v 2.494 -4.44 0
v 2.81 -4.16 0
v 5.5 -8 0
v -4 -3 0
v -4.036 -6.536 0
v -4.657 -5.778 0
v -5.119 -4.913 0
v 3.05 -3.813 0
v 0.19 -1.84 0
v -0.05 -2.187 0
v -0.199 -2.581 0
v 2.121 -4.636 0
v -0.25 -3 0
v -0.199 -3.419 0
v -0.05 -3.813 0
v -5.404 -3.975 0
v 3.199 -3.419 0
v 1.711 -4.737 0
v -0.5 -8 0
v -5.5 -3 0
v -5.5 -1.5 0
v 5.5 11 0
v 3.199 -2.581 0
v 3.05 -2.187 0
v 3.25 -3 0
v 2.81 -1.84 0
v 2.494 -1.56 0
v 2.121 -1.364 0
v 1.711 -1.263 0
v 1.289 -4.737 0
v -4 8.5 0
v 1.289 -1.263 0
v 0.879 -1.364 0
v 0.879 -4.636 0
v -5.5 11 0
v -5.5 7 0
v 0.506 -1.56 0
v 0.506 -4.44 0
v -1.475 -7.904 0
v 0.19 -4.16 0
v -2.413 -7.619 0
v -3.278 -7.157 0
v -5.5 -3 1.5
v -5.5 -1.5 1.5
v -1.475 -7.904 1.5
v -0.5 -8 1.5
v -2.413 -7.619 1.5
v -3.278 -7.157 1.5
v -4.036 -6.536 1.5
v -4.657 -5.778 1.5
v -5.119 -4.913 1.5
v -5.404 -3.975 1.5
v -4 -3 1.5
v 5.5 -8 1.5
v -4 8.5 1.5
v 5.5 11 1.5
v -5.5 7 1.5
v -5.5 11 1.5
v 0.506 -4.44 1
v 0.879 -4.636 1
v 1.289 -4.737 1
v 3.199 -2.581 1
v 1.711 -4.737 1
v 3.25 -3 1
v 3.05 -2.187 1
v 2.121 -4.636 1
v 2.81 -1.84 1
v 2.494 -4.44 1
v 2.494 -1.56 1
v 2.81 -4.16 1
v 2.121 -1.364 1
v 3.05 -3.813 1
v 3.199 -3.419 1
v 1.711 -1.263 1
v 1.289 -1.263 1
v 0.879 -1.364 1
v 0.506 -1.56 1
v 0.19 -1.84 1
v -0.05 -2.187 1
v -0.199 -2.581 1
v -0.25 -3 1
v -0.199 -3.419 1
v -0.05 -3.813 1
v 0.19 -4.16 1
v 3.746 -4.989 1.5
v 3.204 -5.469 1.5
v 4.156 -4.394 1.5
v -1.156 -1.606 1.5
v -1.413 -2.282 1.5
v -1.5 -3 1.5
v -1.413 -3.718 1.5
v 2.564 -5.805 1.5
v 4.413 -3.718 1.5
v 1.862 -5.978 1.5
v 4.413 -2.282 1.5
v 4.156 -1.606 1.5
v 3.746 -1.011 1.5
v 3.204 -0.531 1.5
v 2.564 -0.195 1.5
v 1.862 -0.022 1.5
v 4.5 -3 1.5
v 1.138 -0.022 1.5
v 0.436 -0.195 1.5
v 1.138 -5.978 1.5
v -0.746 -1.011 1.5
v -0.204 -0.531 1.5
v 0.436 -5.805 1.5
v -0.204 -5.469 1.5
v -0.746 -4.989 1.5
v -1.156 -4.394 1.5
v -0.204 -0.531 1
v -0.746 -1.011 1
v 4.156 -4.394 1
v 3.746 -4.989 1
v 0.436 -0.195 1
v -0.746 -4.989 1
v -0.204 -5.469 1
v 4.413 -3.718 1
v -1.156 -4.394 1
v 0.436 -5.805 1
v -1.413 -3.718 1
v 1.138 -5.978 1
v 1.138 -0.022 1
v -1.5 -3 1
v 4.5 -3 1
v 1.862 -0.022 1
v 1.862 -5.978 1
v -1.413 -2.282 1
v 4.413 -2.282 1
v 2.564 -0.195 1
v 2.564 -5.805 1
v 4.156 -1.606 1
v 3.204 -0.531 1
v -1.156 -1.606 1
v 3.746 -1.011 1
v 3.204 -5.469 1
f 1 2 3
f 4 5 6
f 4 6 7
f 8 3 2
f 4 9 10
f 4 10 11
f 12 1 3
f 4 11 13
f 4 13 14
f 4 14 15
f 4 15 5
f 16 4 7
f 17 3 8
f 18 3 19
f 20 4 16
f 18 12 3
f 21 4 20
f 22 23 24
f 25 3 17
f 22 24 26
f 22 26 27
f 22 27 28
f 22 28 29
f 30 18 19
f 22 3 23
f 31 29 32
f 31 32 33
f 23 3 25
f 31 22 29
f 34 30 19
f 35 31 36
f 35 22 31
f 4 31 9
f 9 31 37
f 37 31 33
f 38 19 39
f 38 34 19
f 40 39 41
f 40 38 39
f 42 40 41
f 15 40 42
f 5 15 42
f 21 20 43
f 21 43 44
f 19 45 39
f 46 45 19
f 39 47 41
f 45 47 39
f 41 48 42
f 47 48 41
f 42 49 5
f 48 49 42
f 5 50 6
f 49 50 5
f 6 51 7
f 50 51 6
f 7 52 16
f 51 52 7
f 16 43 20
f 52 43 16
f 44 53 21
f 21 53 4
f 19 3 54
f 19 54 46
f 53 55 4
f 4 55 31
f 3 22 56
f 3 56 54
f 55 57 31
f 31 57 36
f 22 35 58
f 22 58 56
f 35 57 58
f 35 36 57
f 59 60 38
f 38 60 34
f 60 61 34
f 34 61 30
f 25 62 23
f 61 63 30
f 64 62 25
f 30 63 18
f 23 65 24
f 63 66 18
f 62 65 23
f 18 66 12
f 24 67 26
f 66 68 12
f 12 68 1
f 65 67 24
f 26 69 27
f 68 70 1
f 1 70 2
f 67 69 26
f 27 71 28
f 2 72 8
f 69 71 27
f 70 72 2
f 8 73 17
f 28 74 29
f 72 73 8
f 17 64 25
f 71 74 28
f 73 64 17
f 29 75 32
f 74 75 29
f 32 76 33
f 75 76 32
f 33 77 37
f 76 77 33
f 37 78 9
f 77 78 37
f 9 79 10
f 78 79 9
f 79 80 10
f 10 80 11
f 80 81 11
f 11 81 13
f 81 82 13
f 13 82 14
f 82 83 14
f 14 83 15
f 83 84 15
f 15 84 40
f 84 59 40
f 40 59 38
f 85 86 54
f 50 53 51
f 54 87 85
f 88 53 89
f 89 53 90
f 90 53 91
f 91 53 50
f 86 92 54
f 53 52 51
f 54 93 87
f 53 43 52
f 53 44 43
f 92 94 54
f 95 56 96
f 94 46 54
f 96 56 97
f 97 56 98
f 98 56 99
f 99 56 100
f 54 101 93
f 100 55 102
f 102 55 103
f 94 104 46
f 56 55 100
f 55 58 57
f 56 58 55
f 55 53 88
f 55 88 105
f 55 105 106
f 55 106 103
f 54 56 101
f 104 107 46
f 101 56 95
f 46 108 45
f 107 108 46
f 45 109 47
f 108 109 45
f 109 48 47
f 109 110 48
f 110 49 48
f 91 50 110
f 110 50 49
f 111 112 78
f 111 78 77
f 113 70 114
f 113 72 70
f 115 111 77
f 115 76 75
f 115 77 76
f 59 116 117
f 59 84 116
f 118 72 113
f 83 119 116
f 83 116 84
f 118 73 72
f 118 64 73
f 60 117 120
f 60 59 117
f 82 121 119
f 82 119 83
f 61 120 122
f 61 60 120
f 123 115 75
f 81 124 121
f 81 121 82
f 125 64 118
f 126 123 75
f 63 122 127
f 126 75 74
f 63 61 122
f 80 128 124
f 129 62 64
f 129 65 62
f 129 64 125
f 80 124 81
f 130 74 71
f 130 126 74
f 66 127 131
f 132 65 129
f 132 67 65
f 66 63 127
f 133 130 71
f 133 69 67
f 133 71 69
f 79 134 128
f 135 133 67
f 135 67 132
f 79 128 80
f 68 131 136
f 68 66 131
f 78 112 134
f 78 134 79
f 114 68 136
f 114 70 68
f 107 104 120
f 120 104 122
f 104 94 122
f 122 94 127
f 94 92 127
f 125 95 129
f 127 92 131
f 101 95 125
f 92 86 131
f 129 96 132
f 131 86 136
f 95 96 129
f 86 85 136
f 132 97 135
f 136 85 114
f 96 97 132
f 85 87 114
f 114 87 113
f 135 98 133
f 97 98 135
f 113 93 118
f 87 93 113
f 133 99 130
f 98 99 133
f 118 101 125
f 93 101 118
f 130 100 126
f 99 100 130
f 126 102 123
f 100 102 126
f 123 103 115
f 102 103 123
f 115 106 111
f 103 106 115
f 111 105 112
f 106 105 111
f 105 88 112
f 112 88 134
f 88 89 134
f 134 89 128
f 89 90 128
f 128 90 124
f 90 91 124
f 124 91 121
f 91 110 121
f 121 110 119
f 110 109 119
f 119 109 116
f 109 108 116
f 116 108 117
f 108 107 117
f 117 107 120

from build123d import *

# Parameters (mm, degrees)
SKETCH_W        = 11
SKETCH_H        = 19
PAD_DEPTH       = 1.5
SKETCH001_R     = 1.75
POCKET_DEPTH    = 1.5
SKETCH002_R     = 3
POCKET001_DEPTH = 0.5
POCKET002_DEPTH = 1.5
FILLET_R        = 5


with BuildPart() as part:
    # Sketch → Pad (new body)
    with BuildSketch(Plane.XY):
        with Locations((0, 1.5)):
            Rectangle(SKETCH_W, SKETCH_H)
    extrude(amount=PAD_DEPTH)

    # Sketch001 (on Face6 of Pad) → Pocket (cut)
    with BuildSketch(Plane.XY.offset(1.5)):
        with Locations((1.5, -3)):
            Circle(SKETCH001_R)
    extrude(amount=-POCKET_DEPTH, mode=Mode.SUBTRACT)

    # Sketch002 (on Face5 of Pocket) → Pocket001 (cut)
    with BuildSketch(Plane.XY.offset(1.5)):
        with Locations((1.5, -3)):
            Circle(SKETCH002_R)
    extrude(amount=-POCKET001_DEPTH, mode=Mode.SUBTRACT)

    # Sketch003 (on Face5 of Pocket001) → Pocket002 (cut)
    with BuildSketch(Plane.XY.offset(1.5)):
        Polygon((-4, 8.5), (-5.5, 7), (-5.5, -1.5), (-4, -3), align=None)
    extrude(amount=-POCKET002_DEPTH, mode=Mode.SUBTRACT)

    # Fillet
    fillet_edges = [part.edges().sort_by_distance(p)[0] for p in [
        (-5.5, -8, 0.75),
    ]]
    fillet(fillet_edges, radius=FILLET_R)


solid = part.part
